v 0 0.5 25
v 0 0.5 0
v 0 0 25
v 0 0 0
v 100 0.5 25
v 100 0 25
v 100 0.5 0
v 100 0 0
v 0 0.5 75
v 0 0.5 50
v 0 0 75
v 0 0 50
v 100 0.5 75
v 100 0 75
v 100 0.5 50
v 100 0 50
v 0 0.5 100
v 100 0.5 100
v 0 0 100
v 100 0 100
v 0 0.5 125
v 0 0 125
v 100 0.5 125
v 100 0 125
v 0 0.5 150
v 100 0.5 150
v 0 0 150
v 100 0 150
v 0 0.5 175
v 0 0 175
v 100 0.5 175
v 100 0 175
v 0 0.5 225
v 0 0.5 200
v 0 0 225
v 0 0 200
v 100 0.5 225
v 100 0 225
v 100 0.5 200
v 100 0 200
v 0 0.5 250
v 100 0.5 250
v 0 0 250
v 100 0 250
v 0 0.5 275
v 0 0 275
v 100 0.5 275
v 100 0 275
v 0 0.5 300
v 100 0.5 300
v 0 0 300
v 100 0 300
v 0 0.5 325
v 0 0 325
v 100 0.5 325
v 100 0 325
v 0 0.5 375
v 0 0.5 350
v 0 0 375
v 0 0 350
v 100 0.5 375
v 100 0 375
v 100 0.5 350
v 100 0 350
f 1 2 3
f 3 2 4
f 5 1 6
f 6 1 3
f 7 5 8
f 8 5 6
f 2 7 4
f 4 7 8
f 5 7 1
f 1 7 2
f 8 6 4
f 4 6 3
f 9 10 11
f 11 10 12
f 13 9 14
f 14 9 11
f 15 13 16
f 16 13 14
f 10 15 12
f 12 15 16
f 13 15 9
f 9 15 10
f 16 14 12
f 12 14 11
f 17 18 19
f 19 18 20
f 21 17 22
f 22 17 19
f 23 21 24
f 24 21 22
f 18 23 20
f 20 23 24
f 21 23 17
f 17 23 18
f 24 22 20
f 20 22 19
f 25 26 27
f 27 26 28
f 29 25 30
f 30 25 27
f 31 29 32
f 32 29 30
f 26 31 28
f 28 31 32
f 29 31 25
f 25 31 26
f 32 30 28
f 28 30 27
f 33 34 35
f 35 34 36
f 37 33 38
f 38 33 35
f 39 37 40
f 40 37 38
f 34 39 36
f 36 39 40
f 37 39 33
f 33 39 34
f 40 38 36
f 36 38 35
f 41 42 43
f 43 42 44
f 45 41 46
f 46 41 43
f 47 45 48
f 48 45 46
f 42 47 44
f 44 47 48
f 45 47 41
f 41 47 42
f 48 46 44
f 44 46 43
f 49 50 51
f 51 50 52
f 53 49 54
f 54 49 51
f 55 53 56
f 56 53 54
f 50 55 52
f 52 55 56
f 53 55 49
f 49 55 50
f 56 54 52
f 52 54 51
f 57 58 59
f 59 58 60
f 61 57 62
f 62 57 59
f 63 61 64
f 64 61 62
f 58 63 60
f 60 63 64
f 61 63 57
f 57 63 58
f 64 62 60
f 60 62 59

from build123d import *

# Parameters (mm, degrees)
SKETCH_1_W        = 100
SKETCH_1_H        = 25
EXTRUDE_1_DEPTH   = 0.5
EXTRUDE_1_2_DEPTH = 0.5
EXTRUDE_1_3_DEPTH = 0.5
EXTRUDE_1_4_DEPTH = 0.5
EXTRUDE_1_5_DEPTH = 0.5
EXTRUDE_1_6_DEPTH = 0.5
EXTRUDE_1_7_DEPTH = 0.5
EXTRUDE_1_8_DEPTH = 0.5


with BuildPart() as part:
    # 草图1 → 凸台-拉伸1 (new body)
    with BuildSketch(Plane(origin=(0, 0, 0), x_dir=(1, 0, 0), z_dir=(0, 1, 0))):
        with Locations((50, -62.5)):
            Rectangle(SKETCH_1_W, SKETCH_1_H)
    extrude(amount=EXTRUDE_1_DEPTH)


with BuildPart() as body_2:
    # 草图1 → Extrude 1 2 (new body)
    with BuildSketch(Plane(origin=(0, 0, 0), x_dir=(1, 0, 0), z_dir=(0, 1, 0))):
        with Locations((50, -12.5)):
            Rectangle(SKETCH_1_W, SKETCH_1_H)
    extrude(amount=EXTRUDE_1_2_DEPTH)


with BuildPart() as body_3:
    # 草图1 → Extrude 1 3 (new body)
    with BuildSketch(Plane(origin=(0, 0, 0), x_dir=(1, 0, 0), z_dir=(0, 1, 0))):
        with Locations((50, -162.5)):
            Rectangle(SKETCH_1_W, SKETCH_1_H)
    extrude(amount=EXTRUDE_1_3_DEPTH)


with BuildPart() as body_4:
    # 草图1 → Extrude 1 4 (new body)
    with BuildSketch(Plane(origin=(0, 0, 0), x_dir=(1, 0, 0), z_dir=(0, 1, 0))):
        with Locations((50, -112.5)):
            Rectangle(SKETCH_1_W, SKETCH_1_H)
    extrude(amount=EXTRUDE_1_4_DEPTH)


with BuildPart() as body_5:
    # 草图1 → Extrude 1 5 (new body)
    with BuildSketch(Plane(origin=(0, 0, 0), x_dir=(1, 0, 0), z_dir=(0, 1, 0))):
        with Locations((50, -362.5)):
            Rectangle(SKETCH_1_W, SKETCH_1_H)
    extrude(amount=EXTRUDE_1_5_DEPTH)


with BuildPart() as body_6:
    # 草图1 → Extrude 1 6 (new body)
    with BuildSketch(Plane(origin=(0, 0, 0), x_dir=(1, 0, 0), z_dir=(0, 1, 0))):
        with Locations((50, -212.5)):
            Rectangle(SKETCH_1_W, SKETCH_1_H)
    extrude(amount=EXTRUDE_1_6_DEPTH)


with BuildPart() as body_7:
    # 草图1 → Extrude 1 7 (new body)
    with BuildSketch(Plane(origin=(0, 0, 0), x_dir=(1, 0, 0), z_dir=(0, 1, 0))):
        with Locations((50, -262.5)):
            Rectangle(SKETCH_1_W, SKETCH_1_H)
    extrude(amount=EXTRUDE_1_7_DEPTH)


with BuildPart() as body_8:
    # 草图1 → Extrude 1 8 (new body)
    with BuildSketch(Plane(origin=(0, 0, 0), x_dir=(1, 0, 0), z_dir=(0, 1, 0))):
        with Locations((50, -312.5)):
            Rectangle(SKETCH_1_W, SKETCH_1_H)
    extrude(amount=EXTRUDE_1_8_DEPTH)


solid = Compound([part.part, body_2.part, body_3.part, body_4.part, body_5.part, body_6.part, body_7.part, body_8.part])
